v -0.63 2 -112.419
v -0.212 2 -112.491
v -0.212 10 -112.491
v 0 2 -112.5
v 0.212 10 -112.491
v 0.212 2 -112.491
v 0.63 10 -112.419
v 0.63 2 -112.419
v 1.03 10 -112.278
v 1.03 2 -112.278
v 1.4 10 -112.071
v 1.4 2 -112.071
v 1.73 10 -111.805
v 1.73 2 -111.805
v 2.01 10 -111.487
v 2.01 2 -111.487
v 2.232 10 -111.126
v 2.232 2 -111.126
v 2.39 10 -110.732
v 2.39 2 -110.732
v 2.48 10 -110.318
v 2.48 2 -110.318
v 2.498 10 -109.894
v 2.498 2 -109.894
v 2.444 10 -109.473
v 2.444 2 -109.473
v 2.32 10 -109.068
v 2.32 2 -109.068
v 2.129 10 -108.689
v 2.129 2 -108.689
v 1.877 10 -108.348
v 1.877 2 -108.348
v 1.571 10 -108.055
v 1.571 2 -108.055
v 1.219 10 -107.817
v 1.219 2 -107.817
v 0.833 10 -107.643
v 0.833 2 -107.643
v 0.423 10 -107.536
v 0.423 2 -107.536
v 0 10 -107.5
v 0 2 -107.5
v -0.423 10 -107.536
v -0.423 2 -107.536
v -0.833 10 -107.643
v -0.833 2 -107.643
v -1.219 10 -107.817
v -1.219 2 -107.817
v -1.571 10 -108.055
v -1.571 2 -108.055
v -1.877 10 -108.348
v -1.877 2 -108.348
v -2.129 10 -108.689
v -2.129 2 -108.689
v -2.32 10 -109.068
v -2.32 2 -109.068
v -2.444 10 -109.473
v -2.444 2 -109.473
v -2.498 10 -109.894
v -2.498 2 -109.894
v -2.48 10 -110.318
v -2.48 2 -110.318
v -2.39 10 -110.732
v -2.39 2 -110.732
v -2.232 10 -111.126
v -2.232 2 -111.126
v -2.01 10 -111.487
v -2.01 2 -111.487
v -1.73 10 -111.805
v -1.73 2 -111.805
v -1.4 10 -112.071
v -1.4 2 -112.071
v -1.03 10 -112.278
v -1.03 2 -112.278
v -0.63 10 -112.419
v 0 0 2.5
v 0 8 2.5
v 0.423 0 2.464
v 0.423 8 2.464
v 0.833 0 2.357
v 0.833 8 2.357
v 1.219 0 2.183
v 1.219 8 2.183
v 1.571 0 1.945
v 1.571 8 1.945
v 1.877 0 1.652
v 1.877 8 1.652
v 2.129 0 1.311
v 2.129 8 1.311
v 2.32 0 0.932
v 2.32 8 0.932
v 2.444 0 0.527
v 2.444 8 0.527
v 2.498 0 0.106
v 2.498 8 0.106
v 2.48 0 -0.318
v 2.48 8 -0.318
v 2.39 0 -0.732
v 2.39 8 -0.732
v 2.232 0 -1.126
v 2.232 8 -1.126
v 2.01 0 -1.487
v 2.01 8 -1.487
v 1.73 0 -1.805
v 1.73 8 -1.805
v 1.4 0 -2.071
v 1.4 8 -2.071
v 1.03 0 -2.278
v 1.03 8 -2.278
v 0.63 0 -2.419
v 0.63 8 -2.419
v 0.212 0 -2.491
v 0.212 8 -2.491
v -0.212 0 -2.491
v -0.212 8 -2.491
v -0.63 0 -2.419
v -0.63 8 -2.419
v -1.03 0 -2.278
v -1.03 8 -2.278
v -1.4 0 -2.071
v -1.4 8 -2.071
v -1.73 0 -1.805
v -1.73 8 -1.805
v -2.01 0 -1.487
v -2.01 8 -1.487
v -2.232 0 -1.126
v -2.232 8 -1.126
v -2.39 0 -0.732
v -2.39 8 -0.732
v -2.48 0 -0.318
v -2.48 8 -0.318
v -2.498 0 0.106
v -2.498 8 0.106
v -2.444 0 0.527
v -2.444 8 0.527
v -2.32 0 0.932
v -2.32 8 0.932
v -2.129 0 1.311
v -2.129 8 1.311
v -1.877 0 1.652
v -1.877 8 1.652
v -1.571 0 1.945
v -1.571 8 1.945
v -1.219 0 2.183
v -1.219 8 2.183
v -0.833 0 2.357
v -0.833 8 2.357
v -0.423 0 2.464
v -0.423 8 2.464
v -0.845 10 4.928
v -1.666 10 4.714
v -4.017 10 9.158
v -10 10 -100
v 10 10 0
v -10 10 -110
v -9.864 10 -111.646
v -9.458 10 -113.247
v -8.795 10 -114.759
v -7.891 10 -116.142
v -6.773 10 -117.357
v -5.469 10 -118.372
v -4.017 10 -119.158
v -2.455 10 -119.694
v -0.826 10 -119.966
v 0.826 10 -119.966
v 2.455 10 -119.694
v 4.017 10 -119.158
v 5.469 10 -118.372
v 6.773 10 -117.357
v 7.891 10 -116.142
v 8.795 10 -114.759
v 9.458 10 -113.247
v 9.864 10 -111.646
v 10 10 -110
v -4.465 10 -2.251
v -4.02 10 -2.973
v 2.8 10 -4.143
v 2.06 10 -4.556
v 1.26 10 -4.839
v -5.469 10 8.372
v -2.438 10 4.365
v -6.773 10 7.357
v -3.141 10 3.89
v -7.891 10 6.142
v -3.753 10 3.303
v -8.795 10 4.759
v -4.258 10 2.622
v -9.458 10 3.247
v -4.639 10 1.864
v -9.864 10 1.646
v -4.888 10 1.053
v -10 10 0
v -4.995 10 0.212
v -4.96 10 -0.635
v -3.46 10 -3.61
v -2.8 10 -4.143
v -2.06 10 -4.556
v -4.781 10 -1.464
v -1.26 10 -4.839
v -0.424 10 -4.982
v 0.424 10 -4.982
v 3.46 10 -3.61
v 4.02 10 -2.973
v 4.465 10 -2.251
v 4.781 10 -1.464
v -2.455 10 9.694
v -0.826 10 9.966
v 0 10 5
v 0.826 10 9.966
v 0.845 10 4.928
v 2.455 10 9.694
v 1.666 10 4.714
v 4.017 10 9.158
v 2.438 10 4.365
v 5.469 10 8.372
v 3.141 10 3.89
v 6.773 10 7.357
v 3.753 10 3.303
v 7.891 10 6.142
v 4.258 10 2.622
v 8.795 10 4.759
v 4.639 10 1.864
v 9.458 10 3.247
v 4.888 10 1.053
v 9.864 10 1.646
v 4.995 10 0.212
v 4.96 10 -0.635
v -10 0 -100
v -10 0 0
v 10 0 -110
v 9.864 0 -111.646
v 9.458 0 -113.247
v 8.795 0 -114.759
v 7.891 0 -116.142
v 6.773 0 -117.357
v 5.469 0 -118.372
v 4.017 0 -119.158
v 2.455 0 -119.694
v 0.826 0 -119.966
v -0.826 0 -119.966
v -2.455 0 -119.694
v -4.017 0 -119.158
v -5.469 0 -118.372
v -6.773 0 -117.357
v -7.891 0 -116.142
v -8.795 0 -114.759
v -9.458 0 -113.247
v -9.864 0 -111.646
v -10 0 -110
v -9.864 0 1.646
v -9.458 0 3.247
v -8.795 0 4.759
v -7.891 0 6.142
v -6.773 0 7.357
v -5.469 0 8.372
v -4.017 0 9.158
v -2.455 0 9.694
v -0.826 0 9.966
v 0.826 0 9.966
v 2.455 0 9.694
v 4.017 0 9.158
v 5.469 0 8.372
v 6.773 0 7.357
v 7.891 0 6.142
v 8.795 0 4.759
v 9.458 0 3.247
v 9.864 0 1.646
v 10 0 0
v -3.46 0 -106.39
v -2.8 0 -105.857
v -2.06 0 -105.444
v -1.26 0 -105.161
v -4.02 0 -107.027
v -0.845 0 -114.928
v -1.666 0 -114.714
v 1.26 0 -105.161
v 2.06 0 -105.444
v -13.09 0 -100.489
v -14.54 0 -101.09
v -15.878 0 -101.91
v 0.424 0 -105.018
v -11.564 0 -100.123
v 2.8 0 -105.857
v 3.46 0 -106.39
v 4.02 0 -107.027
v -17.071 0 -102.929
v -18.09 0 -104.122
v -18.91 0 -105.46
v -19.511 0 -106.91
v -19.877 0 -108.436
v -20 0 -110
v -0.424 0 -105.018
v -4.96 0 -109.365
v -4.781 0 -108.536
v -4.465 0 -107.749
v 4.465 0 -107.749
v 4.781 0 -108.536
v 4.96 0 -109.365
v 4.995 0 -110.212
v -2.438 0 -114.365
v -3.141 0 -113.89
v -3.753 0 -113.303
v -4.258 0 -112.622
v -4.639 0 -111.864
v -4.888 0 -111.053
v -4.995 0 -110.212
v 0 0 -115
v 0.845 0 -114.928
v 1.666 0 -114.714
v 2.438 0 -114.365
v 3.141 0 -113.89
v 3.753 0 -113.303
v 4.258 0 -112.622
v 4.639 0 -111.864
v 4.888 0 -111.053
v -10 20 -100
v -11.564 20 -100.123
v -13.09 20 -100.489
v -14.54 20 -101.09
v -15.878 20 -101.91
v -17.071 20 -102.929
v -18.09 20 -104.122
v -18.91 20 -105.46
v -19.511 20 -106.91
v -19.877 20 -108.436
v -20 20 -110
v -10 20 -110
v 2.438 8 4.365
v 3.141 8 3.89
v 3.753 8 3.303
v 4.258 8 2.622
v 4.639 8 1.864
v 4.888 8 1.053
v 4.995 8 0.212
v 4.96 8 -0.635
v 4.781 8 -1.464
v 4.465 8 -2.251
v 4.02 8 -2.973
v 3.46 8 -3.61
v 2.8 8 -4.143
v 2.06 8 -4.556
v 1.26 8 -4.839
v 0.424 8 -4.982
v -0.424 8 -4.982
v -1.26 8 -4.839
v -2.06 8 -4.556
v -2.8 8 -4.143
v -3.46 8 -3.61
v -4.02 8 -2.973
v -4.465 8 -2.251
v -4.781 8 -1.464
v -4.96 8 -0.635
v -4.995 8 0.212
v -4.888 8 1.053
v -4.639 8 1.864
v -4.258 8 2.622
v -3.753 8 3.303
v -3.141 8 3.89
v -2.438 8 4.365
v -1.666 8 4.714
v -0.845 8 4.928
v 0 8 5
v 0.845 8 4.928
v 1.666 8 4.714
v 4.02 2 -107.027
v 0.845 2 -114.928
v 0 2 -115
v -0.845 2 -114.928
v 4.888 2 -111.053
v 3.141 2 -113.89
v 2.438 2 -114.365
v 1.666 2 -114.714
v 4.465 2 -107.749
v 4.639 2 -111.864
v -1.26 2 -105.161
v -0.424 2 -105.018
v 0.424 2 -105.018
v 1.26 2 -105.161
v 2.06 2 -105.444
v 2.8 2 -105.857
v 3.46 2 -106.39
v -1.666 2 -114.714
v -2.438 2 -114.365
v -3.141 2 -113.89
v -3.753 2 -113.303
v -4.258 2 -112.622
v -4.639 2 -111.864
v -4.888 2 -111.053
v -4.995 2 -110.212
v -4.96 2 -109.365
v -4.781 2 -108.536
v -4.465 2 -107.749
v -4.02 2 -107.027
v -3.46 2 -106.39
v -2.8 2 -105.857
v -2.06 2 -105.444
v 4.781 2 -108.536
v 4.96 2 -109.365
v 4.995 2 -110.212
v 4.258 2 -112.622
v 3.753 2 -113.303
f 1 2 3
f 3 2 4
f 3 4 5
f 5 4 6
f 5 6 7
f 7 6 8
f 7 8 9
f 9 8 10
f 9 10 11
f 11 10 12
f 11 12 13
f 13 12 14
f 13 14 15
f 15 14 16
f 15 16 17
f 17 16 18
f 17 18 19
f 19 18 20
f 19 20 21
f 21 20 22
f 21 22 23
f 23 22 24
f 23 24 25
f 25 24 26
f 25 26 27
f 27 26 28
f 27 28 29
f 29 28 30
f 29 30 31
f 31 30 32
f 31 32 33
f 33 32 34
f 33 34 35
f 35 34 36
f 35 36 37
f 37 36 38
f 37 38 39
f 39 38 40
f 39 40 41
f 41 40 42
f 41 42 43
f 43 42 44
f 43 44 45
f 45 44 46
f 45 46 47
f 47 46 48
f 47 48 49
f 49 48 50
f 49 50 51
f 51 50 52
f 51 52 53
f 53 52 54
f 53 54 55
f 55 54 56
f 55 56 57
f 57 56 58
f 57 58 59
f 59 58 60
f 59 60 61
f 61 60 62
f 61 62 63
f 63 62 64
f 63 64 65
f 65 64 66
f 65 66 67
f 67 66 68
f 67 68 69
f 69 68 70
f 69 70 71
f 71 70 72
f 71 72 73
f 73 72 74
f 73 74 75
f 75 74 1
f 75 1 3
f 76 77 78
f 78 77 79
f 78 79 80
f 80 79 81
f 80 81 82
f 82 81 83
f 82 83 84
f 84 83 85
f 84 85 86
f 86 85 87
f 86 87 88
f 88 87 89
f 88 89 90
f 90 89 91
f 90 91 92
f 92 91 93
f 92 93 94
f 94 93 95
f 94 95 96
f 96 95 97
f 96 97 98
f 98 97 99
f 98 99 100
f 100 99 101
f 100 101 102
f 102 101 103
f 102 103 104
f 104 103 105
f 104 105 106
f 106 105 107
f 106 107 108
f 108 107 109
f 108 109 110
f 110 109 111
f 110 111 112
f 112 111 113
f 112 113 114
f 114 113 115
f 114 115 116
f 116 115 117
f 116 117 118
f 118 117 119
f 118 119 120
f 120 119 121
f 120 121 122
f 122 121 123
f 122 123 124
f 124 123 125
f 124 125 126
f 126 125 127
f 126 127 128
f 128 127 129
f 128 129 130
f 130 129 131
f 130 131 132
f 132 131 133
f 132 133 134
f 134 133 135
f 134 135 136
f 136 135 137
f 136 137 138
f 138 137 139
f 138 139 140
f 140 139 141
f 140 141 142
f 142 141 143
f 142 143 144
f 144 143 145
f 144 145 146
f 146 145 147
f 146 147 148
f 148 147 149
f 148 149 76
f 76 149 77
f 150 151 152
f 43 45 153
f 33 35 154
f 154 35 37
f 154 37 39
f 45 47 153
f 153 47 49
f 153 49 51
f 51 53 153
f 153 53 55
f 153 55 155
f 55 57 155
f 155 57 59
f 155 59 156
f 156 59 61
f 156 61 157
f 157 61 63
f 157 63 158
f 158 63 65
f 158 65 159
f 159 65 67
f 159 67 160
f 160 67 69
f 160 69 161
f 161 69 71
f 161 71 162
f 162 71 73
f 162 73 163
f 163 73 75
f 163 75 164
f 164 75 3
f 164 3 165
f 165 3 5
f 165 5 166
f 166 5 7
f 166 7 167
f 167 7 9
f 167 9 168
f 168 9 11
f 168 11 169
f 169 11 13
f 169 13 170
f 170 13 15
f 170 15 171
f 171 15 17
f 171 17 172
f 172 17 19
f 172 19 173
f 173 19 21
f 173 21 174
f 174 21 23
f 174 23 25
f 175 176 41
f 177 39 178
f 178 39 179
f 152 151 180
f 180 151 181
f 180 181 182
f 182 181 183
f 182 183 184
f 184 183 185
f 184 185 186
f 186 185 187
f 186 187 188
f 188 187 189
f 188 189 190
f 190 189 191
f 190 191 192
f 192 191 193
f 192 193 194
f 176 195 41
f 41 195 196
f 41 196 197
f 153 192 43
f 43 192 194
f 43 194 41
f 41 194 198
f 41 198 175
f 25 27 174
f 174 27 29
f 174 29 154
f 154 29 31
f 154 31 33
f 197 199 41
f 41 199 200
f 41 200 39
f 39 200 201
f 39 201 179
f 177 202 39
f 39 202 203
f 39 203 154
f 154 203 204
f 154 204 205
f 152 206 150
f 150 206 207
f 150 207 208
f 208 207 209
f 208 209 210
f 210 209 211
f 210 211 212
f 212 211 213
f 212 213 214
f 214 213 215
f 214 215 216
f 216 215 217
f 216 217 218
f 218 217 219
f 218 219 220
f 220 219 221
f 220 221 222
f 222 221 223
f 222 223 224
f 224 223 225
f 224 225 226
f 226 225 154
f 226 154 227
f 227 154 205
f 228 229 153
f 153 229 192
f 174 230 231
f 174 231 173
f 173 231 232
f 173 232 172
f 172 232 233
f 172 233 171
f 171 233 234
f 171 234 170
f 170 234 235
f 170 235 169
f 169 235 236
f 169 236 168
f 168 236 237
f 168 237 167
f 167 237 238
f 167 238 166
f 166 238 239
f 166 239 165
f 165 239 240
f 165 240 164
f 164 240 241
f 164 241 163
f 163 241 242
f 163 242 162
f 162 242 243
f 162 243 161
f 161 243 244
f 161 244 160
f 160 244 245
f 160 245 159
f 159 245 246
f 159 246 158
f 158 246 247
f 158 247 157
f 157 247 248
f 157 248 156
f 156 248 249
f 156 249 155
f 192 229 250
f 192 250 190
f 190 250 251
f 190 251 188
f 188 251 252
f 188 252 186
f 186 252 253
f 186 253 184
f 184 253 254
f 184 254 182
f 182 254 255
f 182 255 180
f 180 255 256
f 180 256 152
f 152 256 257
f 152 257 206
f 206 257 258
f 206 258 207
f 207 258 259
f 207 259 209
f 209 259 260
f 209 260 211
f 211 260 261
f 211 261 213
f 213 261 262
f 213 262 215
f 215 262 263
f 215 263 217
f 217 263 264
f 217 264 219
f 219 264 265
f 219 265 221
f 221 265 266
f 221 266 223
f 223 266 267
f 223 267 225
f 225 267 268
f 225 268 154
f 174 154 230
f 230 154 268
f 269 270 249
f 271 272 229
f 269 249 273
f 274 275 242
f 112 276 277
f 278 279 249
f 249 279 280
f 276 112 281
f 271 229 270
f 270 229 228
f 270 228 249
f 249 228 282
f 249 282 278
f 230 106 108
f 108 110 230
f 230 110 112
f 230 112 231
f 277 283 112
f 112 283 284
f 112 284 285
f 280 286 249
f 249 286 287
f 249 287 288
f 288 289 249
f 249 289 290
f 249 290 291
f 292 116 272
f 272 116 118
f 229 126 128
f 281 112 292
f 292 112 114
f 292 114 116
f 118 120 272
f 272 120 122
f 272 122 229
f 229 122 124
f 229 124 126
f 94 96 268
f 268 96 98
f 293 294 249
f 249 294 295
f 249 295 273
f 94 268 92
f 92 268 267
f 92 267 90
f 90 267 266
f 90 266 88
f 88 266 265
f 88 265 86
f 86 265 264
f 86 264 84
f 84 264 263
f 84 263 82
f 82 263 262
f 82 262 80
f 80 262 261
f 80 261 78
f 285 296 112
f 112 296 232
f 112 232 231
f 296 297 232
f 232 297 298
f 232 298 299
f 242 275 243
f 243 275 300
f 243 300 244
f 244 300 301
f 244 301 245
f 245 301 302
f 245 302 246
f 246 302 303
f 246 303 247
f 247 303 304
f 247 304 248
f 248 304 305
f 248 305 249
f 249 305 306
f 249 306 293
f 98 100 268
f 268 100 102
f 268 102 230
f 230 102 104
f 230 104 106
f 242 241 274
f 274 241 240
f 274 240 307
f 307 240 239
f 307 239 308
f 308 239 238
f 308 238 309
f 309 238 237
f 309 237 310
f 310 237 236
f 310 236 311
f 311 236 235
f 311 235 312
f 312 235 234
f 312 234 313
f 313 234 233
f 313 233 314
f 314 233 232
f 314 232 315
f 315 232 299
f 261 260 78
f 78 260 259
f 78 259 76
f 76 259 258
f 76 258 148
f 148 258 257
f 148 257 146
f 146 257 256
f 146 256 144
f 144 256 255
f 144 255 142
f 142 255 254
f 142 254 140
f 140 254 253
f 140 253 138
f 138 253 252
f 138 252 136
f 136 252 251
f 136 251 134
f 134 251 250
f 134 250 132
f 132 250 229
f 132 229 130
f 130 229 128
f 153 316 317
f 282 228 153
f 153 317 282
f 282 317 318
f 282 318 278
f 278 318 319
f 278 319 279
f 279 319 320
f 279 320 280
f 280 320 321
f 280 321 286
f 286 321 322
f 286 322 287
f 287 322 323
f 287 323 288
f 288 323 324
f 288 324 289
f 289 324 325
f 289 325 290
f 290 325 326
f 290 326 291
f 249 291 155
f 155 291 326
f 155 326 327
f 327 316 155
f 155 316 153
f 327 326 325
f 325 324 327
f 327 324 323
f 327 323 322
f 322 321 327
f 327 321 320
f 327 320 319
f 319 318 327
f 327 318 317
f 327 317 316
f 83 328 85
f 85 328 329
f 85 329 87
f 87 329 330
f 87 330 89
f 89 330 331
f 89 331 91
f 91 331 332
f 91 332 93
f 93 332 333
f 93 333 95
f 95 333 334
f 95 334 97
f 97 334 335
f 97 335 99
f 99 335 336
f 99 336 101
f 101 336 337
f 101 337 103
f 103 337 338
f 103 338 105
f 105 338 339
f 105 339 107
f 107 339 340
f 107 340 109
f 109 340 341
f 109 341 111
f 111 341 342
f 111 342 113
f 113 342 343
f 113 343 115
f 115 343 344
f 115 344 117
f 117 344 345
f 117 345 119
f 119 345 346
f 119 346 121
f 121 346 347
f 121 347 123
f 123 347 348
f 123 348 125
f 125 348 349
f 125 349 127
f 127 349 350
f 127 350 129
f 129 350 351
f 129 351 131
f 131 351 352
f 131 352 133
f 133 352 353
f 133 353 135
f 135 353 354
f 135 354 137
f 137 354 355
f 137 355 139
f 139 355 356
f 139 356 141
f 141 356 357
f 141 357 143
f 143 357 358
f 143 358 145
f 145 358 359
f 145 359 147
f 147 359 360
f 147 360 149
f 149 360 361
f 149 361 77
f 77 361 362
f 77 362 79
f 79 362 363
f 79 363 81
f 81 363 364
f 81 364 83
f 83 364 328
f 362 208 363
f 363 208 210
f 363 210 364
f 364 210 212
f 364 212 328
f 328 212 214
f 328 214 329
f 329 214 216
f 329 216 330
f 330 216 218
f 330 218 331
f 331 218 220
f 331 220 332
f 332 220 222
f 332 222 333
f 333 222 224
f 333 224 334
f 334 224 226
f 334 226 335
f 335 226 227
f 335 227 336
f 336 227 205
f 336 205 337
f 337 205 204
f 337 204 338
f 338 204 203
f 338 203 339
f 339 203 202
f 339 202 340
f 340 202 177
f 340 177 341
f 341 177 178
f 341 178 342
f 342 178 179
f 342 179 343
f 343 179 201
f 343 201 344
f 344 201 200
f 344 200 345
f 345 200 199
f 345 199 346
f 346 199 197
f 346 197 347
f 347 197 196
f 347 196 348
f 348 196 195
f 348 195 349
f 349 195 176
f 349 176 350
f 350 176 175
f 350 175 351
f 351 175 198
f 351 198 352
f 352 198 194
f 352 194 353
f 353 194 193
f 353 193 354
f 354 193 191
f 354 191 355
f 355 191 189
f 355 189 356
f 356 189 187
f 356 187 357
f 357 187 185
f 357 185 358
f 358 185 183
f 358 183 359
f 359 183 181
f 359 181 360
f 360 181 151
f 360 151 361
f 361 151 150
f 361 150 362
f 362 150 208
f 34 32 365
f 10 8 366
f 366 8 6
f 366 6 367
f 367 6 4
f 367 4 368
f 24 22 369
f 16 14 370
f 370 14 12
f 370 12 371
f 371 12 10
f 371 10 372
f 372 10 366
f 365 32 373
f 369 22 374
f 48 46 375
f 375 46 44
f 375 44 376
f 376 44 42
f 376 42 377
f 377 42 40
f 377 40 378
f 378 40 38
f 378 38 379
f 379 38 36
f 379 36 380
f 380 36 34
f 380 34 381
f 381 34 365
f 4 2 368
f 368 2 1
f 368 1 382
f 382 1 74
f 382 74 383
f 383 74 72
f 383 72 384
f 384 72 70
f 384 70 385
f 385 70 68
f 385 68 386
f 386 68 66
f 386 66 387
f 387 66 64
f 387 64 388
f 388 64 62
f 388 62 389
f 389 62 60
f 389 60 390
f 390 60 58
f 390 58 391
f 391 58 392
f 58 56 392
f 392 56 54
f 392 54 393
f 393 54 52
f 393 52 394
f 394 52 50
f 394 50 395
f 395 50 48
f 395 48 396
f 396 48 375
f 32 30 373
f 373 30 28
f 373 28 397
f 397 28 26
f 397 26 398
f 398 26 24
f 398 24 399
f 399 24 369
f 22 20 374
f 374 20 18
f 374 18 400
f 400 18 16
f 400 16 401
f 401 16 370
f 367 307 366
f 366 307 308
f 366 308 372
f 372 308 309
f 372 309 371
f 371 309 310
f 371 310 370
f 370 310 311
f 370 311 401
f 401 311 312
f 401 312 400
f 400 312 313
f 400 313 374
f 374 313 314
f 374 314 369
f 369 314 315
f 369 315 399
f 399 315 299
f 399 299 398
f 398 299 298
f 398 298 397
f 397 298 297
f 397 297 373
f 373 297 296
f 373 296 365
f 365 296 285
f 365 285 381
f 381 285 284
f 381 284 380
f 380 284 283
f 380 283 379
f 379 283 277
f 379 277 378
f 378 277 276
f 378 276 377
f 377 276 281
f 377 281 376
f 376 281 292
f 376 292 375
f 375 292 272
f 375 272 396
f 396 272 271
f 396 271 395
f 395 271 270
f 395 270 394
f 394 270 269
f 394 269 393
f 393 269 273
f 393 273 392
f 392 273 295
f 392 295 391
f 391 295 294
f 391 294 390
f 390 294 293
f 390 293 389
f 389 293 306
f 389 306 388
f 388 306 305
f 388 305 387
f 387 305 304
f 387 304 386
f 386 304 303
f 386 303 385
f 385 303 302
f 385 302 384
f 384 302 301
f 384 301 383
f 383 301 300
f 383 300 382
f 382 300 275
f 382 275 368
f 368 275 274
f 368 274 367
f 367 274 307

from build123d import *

# Parameters (mm, degrees)
BOSS_EXTRUDE2_DEPTH = 10
SKETCH2_R           = 2.5
CUT_EXTRUDE1_DEPTH  = 10
SKETCH3_W           = 10
SKETCH3_H           = 10
REVOLVE1_ANGLE      = 90
BOSS_EXTRUDE3_DEPTH = 10
SKETCH5_W           = 10
SKETCH5_H           = 10
REVOLVE2_ANGLE      = 90
SKETCH7_R           = 5
CUT_EXTRUDE2_DEPTH  = 2
SKETCH8_R           = 5
CUT_EXTRUDE3_DEPTH  = 2


with BuildPart() as part:
    # Sketch1 → Boss-Extrude2 (new body)
    with BuildSketch(Plane(origin=(0, 0, 0), x_dir=(1, 0, 0), z_dir=(0, 1, 0))):
        with BuildLine():
            ThreePointArc((10, 110), (0, 120), (-10, 110))
            Line((-10, 110), (10, 110))
        make_face()
        with BuildLine():
            Line((10, 110), (-10, 110))
            ThreePointArc((-10, 110), (0, 100), (10, 110))
        make_face()
        with BuildLine():
            Line((-10, 110), (-10, 0))
            ThreePointArc((-10, 0), (0, 10), (10, 0))
            Line((10, 0), (10, 110))
            ThreePointArc((10, 110), (0, 100), (-10, 110))
        make_face()
        with BuildLine():
            ThreePointArc((10, 0), (0, 10), (-10, 0))
            Line((-10, 0), (10, 0))
        make_face()
        with BuildLine():
            Line((10, 0), (-10, 0))
            ThreePointArc((-10, 0), (0, -10), (10, 0))
        make_face()
    extrude(amount=BOSS_EXTRUDE2_DEPTH)

    # Sketch2 → Cut-Extrude1 (cut)
    with BuildSketch(Plane(origin=(0, 10, 0), x_dir=(1, 0, 0), z_dir=(0, 1, 0))):
        Circle(SKETCH2_R)
        with Locations((0, 110)):
            Circle(SKETCH2_R)
    extrude(amount=-CUT_EXTRUDE1_DEPTH, mode=Mode.SUBTRACT)

    # Sketch3 → Revolve1 (revolve)
    with BuildSketch(Plane.ZY.offset(10)):
        with Locations((-105, 5)):
            Rectangle(SKETCH3_W, SKETCH3_H)
    revolve(axis=Axis((-10, 10, -110), (0, -1, 0)), revolution_arc=REVOLVE1_ANGLE)

    # Sketch4 → Boss-Extrude3 (add)
    with BuildSketch(Plane(origin=(0, 10, 0), x_dir=(1, 0, 0), z_dir=(0, 1, 0))):
        Polygon((-10, 110), (-10, 100), (-20, 110), align=None)
    extrude(amount=BOSS_EXTRUDE3_DEPTH)

    # Sketch5 → Revolve2 (revolve)
    with BuildSketch(Plane(origin=(-10, 0, 0), x_dir=(0, 0, -1), z_dir=(1, 0, 0))):
        with Locations((105, 15)):
            Rectangle(SKETCH5_W, SKETCH5_H)
    revolve(axis=Axis((-10, 20, -110), (0, -1, 0)), revolution_arc=REVOLVE2_ANGLE)

    # Sketch7 → Cut-Extrude2 (cut)
    with BuildSketch(Plane(origin=(0, 10, 0), x_dir=(1, 0, 0), z_dir=(0, 1, 0))):
        Circle(SKETCH7_R)
    extrude(amount=-CUT_EXTRUDE2_DEPTH, mode=Mode.SUBTRACT)

    # Sketch8 → Cut-Extrude3 (cut)
    with BuildSketch(Plane.XZ):
        with Locations((0, -110)):
            Circle(SKETCH8_R)
    extrude(amount=-CUT_EXTRUDE3_DEPTH, mode=Mode.SUBTRACT)


solid = part.part
